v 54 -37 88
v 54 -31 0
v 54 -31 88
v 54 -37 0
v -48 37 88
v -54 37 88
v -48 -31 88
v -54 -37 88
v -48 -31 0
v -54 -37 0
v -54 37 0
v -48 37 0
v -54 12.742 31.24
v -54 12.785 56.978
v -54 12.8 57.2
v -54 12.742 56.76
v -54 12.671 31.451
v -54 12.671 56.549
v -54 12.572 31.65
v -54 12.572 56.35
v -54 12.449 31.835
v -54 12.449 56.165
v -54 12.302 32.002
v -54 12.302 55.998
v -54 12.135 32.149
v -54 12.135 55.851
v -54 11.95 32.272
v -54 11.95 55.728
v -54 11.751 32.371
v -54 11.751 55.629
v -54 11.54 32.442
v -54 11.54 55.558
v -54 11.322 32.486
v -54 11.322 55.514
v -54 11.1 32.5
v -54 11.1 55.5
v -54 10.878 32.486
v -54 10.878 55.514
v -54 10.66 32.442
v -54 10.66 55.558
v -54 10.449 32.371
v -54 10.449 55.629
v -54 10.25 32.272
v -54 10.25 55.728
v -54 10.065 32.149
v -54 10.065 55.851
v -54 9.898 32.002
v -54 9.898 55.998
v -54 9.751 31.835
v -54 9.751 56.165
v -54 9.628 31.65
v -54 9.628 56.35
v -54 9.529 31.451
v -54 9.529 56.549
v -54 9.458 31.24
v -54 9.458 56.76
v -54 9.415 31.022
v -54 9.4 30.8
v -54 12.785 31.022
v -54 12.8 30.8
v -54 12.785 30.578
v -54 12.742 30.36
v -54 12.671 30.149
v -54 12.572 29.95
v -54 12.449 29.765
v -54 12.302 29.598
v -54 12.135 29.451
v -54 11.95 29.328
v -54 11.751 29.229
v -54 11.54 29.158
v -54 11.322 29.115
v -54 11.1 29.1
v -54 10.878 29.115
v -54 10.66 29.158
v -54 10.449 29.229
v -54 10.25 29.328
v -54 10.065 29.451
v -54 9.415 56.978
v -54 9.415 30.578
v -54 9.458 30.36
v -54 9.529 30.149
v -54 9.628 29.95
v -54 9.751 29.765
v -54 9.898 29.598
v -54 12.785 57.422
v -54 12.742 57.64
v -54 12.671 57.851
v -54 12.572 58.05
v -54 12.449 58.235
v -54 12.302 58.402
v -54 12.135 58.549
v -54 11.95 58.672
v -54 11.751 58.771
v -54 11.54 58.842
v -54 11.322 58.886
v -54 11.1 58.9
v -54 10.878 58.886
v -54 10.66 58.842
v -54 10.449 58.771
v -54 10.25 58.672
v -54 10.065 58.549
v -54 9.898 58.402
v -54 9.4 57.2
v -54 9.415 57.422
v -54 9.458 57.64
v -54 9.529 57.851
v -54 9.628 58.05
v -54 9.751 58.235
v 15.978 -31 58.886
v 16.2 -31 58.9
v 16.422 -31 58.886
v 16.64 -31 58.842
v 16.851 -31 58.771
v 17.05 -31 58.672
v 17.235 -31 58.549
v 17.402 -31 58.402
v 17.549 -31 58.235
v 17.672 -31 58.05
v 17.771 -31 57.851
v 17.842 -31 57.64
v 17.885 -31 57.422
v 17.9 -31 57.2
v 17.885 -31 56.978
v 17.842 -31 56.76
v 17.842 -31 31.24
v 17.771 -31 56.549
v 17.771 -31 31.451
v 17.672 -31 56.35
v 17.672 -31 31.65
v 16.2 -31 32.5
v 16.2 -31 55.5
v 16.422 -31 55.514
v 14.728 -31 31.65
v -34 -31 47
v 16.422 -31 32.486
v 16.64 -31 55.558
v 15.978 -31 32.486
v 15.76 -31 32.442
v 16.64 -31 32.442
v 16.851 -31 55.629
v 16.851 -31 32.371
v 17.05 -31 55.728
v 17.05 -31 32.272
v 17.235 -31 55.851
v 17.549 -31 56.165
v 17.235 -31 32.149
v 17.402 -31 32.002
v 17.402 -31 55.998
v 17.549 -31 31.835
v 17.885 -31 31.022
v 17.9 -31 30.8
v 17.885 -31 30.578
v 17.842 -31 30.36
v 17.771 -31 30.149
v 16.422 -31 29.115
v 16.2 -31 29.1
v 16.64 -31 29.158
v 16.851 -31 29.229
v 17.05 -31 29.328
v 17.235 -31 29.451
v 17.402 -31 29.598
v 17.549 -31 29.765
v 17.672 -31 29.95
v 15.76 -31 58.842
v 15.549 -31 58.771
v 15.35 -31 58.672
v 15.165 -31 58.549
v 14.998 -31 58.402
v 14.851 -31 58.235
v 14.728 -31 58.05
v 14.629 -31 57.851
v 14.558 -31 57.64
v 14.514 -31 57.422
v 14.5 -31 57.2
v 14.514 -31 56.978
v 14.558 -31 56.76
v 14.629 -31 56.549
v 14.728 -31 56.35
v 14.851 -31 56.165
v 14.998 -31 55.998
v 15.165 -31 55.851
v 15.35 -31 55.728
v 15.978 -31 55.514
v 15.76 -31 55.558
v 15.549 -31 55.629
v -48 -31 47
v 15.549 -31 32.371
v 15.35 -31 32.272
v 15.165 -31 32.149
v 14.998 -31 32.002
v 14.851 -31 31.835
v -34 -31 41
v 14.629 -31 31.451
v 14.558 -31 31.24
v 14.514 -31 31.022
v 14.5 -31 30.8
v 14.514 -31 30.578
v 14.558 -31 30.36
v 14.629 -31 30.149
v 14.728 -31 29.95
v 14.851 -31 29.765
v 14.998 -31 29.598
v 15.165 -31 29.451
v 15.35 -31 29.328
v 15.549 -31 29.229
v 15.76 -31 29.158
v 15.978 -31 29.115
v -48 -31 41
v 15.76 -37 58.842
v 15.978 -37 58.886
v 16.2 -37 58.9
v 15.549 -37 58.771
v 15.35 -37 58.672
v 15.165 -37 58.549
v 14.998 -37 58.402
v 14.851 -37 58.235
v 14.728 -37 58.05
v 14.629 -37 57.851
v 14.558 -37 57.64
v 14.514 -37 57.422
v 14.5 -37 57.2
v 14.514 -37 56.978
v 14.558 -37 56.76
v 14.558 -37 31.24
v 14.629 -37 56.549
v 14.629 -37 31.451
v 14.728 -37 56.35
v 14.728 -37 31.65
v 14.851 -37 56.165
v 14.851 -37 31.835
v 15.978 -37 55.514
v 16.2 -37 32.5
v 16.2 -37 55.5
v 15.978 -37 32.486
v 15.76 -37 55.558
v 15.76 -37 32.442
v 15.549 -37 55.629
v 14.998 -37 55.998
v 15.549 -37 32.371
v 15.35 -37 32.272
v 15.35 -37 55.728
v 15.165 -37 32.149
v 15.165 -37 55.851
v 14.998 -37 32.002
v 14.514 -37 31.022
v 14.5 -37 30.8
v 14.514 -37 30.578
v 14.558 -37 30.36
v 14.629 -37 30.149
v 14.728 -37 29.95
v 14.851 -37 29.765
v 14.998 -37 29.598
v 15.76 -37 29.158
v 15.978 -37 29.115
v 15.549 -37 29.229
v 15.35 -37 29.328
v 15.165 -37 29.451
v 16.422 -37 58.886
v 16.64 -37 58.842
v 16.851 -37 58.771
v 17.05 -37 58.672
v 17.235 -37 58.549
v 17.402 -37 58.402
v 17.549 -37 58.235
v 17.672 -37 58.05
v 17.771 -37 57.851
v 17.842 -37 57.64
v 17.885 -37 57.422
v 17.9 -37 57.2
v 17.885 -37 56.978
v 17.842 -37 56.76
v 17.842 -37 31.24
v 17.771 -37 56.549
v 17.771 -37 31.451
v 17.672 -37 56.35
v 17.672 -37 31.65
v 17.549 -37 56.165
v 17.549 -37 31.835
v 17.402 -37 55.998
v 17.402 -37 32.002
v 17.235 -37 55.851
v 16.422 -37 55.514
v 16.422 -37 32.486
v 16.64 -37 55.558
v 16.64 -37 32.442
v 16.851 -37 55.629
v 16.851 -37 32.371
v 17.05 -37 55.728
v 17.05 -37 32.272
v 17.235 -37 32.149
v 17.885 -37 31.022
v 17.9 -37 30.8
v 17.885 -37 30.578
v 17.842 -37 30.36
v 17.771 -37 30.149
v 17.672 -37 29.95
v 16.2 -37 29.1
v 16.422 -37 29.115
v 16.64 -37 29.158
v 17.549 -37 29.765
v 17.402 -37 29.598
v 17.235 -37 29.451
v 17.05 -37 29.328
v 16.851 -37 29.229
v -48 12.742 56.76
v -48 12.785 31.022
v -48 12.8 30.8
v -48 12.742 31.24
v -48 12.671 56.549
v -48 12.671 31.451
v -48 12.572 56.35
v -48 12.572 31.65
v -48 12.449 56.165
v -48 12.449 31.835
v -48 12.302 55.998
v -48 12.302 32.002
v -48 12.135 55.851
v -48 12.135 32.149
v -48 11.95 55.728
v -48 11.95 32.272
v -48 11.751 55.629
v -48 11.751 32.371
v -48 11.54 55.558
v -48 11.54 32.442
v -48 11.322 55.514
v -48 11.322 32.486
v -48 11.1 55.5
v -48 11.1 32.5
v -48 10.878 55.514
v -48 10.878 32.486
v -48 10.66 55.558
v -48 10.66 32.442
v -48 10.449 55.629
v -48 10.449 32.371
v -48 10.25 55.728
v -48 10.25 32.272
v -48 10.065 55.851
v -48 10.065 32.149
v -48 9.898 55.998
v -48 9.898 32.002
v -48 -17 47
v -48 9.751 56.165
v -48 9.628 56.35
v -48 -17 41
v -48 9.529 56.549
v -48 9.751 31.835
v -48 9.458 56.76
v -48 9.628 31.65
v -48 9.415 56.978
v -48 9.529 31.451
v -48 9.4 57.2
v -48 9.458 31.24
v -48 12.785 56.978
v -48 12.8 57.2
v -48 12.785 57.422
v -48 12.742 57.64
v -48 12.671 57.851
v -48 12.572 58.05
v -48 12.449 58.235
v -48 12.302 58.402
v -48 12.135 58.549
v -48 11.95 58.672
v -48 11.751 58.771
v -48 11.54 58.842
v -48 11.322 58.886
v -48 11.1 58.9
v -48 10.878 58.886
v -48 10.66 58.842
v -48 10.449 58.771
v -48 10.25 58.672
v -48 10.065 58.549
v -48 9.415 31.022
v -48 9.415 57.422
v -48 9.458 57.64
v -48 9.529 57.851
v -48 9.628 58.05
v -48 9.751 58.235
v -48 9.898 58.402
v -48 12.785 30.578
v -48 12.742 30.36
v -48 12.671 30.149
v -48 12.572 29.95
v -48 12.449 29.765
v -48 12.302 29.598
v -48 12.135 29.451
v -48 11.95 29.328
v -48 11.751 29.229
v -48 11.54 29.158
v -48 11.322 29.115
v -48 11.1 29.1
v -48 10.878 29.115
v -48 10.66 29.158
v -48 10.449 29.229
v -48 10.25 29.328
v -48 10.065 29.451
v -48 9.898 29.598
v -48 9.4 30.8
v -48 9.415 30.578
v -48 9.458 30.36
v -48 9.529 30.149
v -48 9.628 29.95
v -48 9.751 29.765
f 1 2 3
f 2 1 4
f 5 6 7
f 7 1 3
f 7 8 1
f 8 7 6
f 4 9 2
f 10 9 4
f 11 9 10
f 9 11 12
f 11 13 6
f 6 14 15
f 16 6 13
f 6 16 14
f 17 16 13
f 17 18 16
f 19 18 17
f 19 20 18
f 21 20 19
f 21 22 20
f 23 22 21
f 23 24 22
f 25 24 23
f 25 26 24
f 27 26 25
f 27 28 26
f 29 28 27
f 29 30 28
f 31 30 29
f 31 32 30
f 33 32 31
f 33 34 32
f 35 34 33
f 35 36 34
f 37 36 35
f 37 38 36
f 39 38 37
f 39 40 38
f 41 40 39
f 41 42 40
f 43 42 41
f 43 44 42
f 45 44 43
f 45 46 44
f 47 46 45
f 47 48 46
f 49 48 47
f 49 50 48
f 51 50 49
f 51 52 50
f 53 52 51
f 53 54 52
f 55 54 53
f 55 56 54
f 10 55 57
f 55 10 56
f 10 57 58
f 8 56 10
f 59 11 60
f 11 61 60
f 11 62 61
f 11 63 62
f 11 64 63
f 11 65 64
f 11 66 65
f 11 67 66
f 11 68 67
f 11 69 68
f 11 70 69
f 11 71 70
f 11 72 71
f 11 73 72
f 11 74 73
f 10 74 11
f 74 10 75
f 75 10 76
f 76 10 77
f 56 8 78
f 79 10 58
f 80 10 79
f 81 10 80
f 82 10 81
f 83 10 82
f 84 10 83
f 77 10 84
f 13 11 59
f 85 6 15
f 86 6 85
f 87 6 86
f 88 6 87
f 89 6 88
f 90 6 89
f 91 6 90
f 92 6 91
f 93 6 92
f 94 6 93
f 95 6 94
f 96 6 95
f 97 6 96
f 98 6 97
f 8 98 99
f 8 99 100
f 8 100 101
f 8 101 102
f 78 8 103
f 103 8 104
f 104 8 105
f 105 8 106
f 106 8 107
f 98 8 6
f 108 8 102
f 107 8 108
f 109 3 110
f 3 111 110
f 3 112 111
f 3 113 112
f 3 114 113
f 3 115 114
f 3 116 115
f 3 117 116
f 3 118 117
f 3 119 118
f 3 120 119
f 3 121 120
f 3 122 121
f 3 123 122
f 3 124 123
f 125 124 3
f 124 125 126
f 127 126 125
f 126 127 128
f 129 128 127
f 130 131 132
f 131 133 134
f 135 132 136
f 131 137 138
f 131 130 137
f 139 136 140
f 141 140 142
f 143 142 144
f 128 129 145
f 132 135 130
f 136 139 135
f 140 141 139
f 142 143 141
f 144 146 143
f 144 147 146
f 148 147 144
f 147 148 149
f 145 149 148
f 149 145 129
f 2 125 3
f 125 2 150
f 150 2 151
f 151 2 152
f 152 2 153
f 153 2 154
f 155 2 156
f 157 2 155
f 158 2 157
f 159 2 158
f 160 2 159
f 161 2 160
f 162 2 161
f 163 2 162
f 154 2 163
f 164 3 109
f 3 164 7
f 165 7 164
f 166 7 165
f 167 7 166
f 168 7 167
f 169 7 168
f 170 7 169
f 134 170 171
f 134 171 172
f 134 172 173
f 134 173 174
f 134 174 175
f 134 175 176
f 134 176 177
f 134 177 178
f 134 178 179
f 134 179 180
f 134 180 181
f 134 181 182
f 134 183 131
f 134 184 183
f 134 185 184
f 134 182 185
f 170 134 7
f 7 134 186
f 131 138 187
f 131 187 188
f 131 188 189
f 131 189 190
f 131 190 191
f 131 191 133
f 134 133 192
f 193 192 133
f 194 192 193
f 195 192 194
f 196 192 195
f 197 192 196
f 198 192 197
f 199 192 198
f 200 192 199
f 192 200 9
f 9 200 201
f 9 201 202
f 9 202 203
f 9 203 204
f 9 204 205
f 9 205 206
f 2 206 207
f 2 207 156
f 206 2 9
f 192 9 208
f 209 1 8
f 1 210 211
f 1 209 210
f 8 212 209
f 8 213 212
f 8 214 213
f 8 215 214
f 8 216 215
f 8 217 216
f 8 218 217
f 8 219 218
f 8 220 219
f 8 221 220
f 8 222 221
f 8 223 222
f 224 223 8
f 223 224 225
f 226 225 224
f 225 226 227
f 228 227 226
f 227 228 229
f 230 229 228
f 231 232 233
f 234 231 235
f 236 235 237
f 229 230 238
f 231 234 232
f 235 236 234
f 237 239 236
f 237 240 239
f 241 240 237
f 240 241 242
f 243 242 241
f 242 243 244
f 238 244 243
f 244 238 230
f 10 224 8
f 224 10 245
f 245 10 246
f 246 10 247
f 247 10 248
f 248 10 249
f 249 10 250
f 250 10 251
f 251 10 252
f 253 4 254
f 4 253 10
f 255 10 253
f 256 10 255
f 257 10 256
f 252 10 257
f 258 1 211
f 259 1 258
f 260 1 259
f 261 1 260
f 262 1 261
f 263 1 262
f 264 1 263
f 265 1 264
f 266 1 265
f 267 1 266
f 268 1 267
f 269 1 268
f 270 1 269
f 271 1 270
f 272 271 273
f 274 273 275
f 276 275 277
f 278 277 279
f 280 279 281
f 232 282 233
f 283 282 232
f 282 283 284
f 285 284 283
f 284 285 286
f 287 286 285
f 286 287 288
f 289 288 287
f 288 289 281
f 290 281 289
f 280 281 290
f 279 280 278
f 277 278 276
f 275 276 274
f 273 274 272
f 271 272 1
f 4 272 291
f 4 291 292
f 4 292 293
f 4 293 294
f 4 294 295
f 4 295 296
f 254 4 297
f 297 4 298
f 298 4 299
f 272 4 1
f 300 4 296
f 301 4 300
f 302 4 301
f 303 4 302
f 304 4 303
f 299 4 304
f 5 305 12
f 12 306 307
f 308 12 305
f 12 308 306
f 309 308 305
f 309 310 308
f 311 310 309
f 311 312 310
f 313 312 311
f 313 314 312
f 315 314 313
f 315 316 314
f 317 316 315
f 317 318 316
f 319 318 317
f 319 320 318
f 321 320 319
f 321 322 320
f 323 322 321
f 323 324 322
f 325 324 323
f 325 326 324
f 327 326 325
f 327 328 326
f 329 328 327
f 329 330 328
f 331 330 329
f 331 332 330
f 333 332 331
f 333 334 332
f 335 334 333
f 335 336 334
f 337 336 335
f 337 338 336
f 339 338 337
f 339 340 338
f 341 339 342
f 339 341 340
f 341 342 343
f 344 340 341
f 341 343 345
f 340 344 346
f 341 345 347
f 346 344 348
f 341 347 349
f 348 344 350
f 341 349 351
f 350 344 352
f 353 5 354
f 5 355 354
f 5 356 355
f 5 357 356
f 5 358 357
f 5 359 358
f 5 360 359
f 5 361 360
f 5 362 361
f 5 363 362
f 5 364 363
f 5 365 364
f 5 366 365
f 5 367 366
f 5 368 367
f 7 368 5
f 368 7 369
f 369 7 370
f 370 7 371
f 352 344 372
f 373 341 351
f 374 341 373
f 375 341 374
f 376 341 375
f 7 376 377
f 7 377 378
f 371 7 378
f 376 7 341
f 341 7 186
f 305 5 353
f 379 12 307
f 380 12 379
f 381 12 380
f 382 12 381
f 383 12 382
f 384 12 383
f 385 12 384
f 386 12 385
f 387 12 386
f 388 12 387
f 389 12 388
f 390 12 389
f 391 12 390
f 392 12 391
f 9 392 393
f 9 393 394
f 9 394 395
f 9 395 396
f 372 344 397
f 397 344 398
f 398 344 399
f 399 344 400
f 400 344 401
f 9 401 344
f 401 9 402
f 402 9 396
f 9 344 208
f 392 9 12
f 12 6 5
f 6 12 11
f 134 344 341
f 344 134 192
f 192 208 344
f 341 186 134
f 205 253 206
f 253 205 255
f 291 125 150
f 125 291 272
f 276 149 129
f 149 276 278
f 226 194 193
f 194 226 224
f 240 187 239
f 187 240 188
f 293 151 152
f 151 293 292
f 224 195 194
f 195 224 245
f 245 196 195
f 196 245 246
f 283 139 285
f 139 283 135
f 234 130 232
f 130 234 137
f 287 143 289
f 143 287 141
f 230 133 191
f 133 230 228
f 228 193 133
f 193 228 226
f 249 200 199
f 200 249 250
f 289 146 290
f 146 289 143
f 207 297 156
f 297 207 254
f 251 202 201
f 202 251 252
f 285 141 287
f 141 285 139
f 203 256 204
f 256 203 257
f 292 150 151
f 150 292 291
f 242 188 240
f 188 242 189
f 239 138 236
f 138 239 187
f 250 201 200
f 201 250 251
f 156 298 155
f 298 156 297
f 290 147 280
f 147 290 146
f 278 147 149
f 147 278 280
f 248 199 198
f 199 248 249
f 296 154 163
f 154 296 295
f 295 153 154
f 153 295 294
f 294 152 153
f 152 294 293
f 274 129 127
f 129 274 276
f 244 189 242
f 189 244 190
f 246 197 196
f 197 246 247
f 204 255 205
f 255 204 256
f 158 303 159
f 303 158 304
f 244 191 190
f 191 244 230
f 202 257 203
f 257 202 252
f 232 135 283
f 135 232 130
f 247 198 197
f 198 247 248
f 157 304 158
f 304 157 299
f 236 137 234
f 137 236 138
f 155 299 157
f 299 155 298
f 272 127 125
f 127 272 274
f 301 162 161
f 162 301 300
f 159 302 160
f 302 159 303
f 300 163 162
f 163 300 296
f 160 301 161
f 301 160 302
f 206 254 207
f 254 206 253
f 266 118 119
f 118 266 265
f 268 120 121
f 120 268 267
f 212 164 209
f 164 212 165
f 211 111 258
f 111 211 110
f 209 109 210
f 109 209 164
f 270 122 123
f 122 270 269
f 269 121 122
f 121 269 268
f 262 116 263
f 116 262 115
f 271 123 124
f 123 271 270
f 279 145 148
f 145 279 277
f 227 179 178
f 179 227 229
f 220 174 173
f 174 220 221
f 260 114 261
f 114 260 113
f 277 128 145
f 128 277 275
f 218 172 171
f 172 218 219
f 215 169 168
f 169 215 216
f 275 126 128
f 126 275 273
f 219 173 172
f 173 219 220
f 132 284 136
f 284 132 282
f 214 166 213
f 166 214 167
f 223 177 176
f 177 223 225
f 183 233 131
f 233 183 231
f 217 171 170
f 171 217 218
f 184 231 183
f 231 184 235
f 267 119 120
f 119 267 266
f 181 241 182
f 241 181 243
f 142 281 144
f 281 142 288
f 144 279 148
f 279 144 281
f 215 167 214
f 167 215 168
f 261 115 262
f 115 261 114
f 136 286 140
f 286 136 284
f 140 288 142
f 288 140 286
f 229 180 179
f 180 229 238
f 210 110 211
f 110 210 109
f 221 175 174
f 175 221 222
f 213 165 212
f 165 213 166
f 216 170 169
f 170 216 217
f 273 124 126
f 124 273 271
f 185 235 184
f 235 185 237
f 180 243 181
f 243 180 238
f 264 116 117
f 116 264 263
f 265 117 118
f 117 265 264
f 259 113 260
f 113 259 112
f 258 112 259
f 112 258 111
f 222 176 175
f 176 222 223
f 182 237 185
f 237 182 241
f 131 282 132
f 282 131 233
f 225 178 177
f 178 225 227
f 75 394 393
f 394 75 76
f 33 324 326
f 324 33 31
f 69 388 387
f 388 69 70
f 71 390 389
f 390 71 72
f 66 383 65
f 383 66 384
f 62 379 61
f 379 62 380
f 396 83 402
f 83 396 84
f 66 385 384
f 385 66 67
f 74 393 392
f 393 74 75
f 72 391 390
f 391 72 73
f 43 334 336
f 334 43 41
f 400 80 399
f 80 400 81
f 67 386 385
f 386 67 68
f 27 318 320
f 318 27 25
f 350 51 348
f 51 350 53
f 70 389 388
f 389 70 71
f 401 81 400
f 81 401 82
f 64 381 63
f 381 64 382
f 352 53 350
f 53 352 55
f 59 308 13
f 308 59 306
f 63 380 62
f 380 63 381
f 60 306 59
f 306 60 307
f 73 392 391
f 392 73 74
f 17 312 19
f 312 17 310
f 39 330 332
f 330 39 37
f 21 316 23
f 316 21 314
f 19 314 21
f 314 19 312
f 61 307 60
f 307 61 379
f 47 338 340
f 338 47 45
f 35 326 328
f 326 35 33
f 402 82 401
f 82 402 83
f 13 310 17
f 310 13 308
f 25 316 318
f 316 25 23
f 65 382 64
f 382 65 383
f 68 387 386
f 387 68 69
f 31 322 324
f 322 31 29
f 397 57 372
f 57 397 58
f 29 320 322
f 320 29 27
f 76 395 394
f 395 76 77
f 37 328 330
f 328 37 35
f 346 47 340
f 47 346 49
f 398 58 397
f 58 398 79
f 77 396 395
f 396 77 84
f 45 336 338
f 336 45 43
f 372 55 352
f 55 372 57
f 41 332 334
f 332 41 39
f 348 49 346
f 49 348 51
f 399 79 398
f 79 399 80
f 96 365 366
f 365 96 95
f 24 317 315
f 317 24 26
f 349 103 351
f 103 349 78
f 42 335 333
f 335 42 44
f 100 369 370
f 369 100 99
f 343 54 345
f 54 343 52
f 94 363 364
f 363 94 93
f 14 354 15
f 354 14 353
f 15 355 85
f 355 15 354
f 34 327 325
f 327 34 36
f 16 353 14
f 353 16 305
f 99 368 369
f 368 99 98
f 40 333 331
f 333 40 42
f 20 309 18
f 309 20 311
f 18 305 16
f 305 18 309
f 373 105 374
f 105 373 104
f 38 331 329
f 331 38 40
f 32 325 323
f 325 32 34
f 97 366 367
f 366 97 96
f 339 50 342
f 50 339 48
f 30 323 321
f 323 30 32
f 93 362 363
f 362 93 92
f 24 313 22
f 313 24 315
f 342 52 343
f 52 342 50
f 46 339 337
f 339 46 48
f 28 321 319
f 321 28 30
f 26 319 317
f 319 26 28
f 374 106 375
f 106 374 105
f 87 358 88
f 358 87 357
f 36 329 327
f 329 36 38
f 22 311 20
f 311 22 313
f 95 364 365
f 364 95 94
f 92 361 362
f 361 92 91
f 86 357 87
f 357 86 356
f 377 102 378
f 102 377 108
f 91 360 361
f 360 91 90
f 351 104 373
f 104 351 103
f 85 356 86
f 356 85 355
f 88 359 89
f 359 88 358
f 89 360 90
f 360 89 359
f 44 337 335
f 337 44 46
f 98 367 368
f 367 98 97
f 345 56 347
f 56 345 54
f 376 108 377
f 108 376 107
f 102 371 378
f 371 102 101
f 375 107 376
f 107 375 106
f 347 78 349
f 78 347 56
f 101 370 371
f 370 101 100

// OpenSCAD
// ============================================================================
// Get Me An Alt — Parametric OpenSCAD Module
// Part: PRT-07 — Axis-3 Cantilever Tilt Gimbal U-Yoke Arm (tilt-u-yoke)
// Function: Supports the camera tilt platform above the pan ring gear.
// Target Bounding Box (mm): [108, 74, 88]
// Print Material: PETG | Min Wall: >= 1.6mm | Tolerance: 0.2mm
// ============================================================================
$fn = 48;
part_width = 108;
part_depth = 74;
part_height = 88;
wall_thickness = 4;
floor_thickness = 4;
corner_radius = 6;
tolerance = 0.2;
m3_clearance_d = 3.4; // M3 screw clearance hole (3.0mm + 2*0.2mm)

module rounded_rect_prism(w, d, h, r) {
  cr = max(0.5, min(r, min(w, d) / 2 - 0.1));
  linear_extrude(height = h)
    offset(r = cr)
      offset(r = -cr)
        square([w, d], center = true);
}

module part_tilt_u_yoke() {
  t = 6;
  translate([-part_width / 2, -part_depth / 2, 0])
  difference() {
    union() {
      // Horizontal leg A
      cube([part_width, t, part_height]);
      // Vertical leg B
      cube([t, part_depth, part_height]);
      // Corner gusset rib
      translate([0, 0, part_height * 0.5 - t * 0.5])
        linear_extrude(height = t)
          polygon(points = [[t, t], [min(part_width * 0.55, 20), t], [t, min(part_depth * 0.55, 20)]]);
    }
    // M3 mounting holes on leg A
    translate([part_width * 0.65, t + 1, part_height * 0.35])
      rotate([90, 0, 0]) cylinder(h = t + 2, d = m3_clearance_d);
    translate([part_width * 0.65, t + 1, part_height * 0.65])
      rotate([90, 0, 0]) cylinder(h = t + 2, d = m3_clearance_d);
    // M3 mounting holes on leg B
    translate([-1, part_depth * 0.65, part_height * 0.35])
      rotate([0, 90, 0]) cylinder(h = t + 2, d = m3_clearance_d);
    translate([-1, part_depth * 0.65, part_height * 0.65])
      rotate([0, 90, 0]) cylinder(h = t + 2, d = m3_clearance_d);
  }
}

part_tilt_u_yoke();
